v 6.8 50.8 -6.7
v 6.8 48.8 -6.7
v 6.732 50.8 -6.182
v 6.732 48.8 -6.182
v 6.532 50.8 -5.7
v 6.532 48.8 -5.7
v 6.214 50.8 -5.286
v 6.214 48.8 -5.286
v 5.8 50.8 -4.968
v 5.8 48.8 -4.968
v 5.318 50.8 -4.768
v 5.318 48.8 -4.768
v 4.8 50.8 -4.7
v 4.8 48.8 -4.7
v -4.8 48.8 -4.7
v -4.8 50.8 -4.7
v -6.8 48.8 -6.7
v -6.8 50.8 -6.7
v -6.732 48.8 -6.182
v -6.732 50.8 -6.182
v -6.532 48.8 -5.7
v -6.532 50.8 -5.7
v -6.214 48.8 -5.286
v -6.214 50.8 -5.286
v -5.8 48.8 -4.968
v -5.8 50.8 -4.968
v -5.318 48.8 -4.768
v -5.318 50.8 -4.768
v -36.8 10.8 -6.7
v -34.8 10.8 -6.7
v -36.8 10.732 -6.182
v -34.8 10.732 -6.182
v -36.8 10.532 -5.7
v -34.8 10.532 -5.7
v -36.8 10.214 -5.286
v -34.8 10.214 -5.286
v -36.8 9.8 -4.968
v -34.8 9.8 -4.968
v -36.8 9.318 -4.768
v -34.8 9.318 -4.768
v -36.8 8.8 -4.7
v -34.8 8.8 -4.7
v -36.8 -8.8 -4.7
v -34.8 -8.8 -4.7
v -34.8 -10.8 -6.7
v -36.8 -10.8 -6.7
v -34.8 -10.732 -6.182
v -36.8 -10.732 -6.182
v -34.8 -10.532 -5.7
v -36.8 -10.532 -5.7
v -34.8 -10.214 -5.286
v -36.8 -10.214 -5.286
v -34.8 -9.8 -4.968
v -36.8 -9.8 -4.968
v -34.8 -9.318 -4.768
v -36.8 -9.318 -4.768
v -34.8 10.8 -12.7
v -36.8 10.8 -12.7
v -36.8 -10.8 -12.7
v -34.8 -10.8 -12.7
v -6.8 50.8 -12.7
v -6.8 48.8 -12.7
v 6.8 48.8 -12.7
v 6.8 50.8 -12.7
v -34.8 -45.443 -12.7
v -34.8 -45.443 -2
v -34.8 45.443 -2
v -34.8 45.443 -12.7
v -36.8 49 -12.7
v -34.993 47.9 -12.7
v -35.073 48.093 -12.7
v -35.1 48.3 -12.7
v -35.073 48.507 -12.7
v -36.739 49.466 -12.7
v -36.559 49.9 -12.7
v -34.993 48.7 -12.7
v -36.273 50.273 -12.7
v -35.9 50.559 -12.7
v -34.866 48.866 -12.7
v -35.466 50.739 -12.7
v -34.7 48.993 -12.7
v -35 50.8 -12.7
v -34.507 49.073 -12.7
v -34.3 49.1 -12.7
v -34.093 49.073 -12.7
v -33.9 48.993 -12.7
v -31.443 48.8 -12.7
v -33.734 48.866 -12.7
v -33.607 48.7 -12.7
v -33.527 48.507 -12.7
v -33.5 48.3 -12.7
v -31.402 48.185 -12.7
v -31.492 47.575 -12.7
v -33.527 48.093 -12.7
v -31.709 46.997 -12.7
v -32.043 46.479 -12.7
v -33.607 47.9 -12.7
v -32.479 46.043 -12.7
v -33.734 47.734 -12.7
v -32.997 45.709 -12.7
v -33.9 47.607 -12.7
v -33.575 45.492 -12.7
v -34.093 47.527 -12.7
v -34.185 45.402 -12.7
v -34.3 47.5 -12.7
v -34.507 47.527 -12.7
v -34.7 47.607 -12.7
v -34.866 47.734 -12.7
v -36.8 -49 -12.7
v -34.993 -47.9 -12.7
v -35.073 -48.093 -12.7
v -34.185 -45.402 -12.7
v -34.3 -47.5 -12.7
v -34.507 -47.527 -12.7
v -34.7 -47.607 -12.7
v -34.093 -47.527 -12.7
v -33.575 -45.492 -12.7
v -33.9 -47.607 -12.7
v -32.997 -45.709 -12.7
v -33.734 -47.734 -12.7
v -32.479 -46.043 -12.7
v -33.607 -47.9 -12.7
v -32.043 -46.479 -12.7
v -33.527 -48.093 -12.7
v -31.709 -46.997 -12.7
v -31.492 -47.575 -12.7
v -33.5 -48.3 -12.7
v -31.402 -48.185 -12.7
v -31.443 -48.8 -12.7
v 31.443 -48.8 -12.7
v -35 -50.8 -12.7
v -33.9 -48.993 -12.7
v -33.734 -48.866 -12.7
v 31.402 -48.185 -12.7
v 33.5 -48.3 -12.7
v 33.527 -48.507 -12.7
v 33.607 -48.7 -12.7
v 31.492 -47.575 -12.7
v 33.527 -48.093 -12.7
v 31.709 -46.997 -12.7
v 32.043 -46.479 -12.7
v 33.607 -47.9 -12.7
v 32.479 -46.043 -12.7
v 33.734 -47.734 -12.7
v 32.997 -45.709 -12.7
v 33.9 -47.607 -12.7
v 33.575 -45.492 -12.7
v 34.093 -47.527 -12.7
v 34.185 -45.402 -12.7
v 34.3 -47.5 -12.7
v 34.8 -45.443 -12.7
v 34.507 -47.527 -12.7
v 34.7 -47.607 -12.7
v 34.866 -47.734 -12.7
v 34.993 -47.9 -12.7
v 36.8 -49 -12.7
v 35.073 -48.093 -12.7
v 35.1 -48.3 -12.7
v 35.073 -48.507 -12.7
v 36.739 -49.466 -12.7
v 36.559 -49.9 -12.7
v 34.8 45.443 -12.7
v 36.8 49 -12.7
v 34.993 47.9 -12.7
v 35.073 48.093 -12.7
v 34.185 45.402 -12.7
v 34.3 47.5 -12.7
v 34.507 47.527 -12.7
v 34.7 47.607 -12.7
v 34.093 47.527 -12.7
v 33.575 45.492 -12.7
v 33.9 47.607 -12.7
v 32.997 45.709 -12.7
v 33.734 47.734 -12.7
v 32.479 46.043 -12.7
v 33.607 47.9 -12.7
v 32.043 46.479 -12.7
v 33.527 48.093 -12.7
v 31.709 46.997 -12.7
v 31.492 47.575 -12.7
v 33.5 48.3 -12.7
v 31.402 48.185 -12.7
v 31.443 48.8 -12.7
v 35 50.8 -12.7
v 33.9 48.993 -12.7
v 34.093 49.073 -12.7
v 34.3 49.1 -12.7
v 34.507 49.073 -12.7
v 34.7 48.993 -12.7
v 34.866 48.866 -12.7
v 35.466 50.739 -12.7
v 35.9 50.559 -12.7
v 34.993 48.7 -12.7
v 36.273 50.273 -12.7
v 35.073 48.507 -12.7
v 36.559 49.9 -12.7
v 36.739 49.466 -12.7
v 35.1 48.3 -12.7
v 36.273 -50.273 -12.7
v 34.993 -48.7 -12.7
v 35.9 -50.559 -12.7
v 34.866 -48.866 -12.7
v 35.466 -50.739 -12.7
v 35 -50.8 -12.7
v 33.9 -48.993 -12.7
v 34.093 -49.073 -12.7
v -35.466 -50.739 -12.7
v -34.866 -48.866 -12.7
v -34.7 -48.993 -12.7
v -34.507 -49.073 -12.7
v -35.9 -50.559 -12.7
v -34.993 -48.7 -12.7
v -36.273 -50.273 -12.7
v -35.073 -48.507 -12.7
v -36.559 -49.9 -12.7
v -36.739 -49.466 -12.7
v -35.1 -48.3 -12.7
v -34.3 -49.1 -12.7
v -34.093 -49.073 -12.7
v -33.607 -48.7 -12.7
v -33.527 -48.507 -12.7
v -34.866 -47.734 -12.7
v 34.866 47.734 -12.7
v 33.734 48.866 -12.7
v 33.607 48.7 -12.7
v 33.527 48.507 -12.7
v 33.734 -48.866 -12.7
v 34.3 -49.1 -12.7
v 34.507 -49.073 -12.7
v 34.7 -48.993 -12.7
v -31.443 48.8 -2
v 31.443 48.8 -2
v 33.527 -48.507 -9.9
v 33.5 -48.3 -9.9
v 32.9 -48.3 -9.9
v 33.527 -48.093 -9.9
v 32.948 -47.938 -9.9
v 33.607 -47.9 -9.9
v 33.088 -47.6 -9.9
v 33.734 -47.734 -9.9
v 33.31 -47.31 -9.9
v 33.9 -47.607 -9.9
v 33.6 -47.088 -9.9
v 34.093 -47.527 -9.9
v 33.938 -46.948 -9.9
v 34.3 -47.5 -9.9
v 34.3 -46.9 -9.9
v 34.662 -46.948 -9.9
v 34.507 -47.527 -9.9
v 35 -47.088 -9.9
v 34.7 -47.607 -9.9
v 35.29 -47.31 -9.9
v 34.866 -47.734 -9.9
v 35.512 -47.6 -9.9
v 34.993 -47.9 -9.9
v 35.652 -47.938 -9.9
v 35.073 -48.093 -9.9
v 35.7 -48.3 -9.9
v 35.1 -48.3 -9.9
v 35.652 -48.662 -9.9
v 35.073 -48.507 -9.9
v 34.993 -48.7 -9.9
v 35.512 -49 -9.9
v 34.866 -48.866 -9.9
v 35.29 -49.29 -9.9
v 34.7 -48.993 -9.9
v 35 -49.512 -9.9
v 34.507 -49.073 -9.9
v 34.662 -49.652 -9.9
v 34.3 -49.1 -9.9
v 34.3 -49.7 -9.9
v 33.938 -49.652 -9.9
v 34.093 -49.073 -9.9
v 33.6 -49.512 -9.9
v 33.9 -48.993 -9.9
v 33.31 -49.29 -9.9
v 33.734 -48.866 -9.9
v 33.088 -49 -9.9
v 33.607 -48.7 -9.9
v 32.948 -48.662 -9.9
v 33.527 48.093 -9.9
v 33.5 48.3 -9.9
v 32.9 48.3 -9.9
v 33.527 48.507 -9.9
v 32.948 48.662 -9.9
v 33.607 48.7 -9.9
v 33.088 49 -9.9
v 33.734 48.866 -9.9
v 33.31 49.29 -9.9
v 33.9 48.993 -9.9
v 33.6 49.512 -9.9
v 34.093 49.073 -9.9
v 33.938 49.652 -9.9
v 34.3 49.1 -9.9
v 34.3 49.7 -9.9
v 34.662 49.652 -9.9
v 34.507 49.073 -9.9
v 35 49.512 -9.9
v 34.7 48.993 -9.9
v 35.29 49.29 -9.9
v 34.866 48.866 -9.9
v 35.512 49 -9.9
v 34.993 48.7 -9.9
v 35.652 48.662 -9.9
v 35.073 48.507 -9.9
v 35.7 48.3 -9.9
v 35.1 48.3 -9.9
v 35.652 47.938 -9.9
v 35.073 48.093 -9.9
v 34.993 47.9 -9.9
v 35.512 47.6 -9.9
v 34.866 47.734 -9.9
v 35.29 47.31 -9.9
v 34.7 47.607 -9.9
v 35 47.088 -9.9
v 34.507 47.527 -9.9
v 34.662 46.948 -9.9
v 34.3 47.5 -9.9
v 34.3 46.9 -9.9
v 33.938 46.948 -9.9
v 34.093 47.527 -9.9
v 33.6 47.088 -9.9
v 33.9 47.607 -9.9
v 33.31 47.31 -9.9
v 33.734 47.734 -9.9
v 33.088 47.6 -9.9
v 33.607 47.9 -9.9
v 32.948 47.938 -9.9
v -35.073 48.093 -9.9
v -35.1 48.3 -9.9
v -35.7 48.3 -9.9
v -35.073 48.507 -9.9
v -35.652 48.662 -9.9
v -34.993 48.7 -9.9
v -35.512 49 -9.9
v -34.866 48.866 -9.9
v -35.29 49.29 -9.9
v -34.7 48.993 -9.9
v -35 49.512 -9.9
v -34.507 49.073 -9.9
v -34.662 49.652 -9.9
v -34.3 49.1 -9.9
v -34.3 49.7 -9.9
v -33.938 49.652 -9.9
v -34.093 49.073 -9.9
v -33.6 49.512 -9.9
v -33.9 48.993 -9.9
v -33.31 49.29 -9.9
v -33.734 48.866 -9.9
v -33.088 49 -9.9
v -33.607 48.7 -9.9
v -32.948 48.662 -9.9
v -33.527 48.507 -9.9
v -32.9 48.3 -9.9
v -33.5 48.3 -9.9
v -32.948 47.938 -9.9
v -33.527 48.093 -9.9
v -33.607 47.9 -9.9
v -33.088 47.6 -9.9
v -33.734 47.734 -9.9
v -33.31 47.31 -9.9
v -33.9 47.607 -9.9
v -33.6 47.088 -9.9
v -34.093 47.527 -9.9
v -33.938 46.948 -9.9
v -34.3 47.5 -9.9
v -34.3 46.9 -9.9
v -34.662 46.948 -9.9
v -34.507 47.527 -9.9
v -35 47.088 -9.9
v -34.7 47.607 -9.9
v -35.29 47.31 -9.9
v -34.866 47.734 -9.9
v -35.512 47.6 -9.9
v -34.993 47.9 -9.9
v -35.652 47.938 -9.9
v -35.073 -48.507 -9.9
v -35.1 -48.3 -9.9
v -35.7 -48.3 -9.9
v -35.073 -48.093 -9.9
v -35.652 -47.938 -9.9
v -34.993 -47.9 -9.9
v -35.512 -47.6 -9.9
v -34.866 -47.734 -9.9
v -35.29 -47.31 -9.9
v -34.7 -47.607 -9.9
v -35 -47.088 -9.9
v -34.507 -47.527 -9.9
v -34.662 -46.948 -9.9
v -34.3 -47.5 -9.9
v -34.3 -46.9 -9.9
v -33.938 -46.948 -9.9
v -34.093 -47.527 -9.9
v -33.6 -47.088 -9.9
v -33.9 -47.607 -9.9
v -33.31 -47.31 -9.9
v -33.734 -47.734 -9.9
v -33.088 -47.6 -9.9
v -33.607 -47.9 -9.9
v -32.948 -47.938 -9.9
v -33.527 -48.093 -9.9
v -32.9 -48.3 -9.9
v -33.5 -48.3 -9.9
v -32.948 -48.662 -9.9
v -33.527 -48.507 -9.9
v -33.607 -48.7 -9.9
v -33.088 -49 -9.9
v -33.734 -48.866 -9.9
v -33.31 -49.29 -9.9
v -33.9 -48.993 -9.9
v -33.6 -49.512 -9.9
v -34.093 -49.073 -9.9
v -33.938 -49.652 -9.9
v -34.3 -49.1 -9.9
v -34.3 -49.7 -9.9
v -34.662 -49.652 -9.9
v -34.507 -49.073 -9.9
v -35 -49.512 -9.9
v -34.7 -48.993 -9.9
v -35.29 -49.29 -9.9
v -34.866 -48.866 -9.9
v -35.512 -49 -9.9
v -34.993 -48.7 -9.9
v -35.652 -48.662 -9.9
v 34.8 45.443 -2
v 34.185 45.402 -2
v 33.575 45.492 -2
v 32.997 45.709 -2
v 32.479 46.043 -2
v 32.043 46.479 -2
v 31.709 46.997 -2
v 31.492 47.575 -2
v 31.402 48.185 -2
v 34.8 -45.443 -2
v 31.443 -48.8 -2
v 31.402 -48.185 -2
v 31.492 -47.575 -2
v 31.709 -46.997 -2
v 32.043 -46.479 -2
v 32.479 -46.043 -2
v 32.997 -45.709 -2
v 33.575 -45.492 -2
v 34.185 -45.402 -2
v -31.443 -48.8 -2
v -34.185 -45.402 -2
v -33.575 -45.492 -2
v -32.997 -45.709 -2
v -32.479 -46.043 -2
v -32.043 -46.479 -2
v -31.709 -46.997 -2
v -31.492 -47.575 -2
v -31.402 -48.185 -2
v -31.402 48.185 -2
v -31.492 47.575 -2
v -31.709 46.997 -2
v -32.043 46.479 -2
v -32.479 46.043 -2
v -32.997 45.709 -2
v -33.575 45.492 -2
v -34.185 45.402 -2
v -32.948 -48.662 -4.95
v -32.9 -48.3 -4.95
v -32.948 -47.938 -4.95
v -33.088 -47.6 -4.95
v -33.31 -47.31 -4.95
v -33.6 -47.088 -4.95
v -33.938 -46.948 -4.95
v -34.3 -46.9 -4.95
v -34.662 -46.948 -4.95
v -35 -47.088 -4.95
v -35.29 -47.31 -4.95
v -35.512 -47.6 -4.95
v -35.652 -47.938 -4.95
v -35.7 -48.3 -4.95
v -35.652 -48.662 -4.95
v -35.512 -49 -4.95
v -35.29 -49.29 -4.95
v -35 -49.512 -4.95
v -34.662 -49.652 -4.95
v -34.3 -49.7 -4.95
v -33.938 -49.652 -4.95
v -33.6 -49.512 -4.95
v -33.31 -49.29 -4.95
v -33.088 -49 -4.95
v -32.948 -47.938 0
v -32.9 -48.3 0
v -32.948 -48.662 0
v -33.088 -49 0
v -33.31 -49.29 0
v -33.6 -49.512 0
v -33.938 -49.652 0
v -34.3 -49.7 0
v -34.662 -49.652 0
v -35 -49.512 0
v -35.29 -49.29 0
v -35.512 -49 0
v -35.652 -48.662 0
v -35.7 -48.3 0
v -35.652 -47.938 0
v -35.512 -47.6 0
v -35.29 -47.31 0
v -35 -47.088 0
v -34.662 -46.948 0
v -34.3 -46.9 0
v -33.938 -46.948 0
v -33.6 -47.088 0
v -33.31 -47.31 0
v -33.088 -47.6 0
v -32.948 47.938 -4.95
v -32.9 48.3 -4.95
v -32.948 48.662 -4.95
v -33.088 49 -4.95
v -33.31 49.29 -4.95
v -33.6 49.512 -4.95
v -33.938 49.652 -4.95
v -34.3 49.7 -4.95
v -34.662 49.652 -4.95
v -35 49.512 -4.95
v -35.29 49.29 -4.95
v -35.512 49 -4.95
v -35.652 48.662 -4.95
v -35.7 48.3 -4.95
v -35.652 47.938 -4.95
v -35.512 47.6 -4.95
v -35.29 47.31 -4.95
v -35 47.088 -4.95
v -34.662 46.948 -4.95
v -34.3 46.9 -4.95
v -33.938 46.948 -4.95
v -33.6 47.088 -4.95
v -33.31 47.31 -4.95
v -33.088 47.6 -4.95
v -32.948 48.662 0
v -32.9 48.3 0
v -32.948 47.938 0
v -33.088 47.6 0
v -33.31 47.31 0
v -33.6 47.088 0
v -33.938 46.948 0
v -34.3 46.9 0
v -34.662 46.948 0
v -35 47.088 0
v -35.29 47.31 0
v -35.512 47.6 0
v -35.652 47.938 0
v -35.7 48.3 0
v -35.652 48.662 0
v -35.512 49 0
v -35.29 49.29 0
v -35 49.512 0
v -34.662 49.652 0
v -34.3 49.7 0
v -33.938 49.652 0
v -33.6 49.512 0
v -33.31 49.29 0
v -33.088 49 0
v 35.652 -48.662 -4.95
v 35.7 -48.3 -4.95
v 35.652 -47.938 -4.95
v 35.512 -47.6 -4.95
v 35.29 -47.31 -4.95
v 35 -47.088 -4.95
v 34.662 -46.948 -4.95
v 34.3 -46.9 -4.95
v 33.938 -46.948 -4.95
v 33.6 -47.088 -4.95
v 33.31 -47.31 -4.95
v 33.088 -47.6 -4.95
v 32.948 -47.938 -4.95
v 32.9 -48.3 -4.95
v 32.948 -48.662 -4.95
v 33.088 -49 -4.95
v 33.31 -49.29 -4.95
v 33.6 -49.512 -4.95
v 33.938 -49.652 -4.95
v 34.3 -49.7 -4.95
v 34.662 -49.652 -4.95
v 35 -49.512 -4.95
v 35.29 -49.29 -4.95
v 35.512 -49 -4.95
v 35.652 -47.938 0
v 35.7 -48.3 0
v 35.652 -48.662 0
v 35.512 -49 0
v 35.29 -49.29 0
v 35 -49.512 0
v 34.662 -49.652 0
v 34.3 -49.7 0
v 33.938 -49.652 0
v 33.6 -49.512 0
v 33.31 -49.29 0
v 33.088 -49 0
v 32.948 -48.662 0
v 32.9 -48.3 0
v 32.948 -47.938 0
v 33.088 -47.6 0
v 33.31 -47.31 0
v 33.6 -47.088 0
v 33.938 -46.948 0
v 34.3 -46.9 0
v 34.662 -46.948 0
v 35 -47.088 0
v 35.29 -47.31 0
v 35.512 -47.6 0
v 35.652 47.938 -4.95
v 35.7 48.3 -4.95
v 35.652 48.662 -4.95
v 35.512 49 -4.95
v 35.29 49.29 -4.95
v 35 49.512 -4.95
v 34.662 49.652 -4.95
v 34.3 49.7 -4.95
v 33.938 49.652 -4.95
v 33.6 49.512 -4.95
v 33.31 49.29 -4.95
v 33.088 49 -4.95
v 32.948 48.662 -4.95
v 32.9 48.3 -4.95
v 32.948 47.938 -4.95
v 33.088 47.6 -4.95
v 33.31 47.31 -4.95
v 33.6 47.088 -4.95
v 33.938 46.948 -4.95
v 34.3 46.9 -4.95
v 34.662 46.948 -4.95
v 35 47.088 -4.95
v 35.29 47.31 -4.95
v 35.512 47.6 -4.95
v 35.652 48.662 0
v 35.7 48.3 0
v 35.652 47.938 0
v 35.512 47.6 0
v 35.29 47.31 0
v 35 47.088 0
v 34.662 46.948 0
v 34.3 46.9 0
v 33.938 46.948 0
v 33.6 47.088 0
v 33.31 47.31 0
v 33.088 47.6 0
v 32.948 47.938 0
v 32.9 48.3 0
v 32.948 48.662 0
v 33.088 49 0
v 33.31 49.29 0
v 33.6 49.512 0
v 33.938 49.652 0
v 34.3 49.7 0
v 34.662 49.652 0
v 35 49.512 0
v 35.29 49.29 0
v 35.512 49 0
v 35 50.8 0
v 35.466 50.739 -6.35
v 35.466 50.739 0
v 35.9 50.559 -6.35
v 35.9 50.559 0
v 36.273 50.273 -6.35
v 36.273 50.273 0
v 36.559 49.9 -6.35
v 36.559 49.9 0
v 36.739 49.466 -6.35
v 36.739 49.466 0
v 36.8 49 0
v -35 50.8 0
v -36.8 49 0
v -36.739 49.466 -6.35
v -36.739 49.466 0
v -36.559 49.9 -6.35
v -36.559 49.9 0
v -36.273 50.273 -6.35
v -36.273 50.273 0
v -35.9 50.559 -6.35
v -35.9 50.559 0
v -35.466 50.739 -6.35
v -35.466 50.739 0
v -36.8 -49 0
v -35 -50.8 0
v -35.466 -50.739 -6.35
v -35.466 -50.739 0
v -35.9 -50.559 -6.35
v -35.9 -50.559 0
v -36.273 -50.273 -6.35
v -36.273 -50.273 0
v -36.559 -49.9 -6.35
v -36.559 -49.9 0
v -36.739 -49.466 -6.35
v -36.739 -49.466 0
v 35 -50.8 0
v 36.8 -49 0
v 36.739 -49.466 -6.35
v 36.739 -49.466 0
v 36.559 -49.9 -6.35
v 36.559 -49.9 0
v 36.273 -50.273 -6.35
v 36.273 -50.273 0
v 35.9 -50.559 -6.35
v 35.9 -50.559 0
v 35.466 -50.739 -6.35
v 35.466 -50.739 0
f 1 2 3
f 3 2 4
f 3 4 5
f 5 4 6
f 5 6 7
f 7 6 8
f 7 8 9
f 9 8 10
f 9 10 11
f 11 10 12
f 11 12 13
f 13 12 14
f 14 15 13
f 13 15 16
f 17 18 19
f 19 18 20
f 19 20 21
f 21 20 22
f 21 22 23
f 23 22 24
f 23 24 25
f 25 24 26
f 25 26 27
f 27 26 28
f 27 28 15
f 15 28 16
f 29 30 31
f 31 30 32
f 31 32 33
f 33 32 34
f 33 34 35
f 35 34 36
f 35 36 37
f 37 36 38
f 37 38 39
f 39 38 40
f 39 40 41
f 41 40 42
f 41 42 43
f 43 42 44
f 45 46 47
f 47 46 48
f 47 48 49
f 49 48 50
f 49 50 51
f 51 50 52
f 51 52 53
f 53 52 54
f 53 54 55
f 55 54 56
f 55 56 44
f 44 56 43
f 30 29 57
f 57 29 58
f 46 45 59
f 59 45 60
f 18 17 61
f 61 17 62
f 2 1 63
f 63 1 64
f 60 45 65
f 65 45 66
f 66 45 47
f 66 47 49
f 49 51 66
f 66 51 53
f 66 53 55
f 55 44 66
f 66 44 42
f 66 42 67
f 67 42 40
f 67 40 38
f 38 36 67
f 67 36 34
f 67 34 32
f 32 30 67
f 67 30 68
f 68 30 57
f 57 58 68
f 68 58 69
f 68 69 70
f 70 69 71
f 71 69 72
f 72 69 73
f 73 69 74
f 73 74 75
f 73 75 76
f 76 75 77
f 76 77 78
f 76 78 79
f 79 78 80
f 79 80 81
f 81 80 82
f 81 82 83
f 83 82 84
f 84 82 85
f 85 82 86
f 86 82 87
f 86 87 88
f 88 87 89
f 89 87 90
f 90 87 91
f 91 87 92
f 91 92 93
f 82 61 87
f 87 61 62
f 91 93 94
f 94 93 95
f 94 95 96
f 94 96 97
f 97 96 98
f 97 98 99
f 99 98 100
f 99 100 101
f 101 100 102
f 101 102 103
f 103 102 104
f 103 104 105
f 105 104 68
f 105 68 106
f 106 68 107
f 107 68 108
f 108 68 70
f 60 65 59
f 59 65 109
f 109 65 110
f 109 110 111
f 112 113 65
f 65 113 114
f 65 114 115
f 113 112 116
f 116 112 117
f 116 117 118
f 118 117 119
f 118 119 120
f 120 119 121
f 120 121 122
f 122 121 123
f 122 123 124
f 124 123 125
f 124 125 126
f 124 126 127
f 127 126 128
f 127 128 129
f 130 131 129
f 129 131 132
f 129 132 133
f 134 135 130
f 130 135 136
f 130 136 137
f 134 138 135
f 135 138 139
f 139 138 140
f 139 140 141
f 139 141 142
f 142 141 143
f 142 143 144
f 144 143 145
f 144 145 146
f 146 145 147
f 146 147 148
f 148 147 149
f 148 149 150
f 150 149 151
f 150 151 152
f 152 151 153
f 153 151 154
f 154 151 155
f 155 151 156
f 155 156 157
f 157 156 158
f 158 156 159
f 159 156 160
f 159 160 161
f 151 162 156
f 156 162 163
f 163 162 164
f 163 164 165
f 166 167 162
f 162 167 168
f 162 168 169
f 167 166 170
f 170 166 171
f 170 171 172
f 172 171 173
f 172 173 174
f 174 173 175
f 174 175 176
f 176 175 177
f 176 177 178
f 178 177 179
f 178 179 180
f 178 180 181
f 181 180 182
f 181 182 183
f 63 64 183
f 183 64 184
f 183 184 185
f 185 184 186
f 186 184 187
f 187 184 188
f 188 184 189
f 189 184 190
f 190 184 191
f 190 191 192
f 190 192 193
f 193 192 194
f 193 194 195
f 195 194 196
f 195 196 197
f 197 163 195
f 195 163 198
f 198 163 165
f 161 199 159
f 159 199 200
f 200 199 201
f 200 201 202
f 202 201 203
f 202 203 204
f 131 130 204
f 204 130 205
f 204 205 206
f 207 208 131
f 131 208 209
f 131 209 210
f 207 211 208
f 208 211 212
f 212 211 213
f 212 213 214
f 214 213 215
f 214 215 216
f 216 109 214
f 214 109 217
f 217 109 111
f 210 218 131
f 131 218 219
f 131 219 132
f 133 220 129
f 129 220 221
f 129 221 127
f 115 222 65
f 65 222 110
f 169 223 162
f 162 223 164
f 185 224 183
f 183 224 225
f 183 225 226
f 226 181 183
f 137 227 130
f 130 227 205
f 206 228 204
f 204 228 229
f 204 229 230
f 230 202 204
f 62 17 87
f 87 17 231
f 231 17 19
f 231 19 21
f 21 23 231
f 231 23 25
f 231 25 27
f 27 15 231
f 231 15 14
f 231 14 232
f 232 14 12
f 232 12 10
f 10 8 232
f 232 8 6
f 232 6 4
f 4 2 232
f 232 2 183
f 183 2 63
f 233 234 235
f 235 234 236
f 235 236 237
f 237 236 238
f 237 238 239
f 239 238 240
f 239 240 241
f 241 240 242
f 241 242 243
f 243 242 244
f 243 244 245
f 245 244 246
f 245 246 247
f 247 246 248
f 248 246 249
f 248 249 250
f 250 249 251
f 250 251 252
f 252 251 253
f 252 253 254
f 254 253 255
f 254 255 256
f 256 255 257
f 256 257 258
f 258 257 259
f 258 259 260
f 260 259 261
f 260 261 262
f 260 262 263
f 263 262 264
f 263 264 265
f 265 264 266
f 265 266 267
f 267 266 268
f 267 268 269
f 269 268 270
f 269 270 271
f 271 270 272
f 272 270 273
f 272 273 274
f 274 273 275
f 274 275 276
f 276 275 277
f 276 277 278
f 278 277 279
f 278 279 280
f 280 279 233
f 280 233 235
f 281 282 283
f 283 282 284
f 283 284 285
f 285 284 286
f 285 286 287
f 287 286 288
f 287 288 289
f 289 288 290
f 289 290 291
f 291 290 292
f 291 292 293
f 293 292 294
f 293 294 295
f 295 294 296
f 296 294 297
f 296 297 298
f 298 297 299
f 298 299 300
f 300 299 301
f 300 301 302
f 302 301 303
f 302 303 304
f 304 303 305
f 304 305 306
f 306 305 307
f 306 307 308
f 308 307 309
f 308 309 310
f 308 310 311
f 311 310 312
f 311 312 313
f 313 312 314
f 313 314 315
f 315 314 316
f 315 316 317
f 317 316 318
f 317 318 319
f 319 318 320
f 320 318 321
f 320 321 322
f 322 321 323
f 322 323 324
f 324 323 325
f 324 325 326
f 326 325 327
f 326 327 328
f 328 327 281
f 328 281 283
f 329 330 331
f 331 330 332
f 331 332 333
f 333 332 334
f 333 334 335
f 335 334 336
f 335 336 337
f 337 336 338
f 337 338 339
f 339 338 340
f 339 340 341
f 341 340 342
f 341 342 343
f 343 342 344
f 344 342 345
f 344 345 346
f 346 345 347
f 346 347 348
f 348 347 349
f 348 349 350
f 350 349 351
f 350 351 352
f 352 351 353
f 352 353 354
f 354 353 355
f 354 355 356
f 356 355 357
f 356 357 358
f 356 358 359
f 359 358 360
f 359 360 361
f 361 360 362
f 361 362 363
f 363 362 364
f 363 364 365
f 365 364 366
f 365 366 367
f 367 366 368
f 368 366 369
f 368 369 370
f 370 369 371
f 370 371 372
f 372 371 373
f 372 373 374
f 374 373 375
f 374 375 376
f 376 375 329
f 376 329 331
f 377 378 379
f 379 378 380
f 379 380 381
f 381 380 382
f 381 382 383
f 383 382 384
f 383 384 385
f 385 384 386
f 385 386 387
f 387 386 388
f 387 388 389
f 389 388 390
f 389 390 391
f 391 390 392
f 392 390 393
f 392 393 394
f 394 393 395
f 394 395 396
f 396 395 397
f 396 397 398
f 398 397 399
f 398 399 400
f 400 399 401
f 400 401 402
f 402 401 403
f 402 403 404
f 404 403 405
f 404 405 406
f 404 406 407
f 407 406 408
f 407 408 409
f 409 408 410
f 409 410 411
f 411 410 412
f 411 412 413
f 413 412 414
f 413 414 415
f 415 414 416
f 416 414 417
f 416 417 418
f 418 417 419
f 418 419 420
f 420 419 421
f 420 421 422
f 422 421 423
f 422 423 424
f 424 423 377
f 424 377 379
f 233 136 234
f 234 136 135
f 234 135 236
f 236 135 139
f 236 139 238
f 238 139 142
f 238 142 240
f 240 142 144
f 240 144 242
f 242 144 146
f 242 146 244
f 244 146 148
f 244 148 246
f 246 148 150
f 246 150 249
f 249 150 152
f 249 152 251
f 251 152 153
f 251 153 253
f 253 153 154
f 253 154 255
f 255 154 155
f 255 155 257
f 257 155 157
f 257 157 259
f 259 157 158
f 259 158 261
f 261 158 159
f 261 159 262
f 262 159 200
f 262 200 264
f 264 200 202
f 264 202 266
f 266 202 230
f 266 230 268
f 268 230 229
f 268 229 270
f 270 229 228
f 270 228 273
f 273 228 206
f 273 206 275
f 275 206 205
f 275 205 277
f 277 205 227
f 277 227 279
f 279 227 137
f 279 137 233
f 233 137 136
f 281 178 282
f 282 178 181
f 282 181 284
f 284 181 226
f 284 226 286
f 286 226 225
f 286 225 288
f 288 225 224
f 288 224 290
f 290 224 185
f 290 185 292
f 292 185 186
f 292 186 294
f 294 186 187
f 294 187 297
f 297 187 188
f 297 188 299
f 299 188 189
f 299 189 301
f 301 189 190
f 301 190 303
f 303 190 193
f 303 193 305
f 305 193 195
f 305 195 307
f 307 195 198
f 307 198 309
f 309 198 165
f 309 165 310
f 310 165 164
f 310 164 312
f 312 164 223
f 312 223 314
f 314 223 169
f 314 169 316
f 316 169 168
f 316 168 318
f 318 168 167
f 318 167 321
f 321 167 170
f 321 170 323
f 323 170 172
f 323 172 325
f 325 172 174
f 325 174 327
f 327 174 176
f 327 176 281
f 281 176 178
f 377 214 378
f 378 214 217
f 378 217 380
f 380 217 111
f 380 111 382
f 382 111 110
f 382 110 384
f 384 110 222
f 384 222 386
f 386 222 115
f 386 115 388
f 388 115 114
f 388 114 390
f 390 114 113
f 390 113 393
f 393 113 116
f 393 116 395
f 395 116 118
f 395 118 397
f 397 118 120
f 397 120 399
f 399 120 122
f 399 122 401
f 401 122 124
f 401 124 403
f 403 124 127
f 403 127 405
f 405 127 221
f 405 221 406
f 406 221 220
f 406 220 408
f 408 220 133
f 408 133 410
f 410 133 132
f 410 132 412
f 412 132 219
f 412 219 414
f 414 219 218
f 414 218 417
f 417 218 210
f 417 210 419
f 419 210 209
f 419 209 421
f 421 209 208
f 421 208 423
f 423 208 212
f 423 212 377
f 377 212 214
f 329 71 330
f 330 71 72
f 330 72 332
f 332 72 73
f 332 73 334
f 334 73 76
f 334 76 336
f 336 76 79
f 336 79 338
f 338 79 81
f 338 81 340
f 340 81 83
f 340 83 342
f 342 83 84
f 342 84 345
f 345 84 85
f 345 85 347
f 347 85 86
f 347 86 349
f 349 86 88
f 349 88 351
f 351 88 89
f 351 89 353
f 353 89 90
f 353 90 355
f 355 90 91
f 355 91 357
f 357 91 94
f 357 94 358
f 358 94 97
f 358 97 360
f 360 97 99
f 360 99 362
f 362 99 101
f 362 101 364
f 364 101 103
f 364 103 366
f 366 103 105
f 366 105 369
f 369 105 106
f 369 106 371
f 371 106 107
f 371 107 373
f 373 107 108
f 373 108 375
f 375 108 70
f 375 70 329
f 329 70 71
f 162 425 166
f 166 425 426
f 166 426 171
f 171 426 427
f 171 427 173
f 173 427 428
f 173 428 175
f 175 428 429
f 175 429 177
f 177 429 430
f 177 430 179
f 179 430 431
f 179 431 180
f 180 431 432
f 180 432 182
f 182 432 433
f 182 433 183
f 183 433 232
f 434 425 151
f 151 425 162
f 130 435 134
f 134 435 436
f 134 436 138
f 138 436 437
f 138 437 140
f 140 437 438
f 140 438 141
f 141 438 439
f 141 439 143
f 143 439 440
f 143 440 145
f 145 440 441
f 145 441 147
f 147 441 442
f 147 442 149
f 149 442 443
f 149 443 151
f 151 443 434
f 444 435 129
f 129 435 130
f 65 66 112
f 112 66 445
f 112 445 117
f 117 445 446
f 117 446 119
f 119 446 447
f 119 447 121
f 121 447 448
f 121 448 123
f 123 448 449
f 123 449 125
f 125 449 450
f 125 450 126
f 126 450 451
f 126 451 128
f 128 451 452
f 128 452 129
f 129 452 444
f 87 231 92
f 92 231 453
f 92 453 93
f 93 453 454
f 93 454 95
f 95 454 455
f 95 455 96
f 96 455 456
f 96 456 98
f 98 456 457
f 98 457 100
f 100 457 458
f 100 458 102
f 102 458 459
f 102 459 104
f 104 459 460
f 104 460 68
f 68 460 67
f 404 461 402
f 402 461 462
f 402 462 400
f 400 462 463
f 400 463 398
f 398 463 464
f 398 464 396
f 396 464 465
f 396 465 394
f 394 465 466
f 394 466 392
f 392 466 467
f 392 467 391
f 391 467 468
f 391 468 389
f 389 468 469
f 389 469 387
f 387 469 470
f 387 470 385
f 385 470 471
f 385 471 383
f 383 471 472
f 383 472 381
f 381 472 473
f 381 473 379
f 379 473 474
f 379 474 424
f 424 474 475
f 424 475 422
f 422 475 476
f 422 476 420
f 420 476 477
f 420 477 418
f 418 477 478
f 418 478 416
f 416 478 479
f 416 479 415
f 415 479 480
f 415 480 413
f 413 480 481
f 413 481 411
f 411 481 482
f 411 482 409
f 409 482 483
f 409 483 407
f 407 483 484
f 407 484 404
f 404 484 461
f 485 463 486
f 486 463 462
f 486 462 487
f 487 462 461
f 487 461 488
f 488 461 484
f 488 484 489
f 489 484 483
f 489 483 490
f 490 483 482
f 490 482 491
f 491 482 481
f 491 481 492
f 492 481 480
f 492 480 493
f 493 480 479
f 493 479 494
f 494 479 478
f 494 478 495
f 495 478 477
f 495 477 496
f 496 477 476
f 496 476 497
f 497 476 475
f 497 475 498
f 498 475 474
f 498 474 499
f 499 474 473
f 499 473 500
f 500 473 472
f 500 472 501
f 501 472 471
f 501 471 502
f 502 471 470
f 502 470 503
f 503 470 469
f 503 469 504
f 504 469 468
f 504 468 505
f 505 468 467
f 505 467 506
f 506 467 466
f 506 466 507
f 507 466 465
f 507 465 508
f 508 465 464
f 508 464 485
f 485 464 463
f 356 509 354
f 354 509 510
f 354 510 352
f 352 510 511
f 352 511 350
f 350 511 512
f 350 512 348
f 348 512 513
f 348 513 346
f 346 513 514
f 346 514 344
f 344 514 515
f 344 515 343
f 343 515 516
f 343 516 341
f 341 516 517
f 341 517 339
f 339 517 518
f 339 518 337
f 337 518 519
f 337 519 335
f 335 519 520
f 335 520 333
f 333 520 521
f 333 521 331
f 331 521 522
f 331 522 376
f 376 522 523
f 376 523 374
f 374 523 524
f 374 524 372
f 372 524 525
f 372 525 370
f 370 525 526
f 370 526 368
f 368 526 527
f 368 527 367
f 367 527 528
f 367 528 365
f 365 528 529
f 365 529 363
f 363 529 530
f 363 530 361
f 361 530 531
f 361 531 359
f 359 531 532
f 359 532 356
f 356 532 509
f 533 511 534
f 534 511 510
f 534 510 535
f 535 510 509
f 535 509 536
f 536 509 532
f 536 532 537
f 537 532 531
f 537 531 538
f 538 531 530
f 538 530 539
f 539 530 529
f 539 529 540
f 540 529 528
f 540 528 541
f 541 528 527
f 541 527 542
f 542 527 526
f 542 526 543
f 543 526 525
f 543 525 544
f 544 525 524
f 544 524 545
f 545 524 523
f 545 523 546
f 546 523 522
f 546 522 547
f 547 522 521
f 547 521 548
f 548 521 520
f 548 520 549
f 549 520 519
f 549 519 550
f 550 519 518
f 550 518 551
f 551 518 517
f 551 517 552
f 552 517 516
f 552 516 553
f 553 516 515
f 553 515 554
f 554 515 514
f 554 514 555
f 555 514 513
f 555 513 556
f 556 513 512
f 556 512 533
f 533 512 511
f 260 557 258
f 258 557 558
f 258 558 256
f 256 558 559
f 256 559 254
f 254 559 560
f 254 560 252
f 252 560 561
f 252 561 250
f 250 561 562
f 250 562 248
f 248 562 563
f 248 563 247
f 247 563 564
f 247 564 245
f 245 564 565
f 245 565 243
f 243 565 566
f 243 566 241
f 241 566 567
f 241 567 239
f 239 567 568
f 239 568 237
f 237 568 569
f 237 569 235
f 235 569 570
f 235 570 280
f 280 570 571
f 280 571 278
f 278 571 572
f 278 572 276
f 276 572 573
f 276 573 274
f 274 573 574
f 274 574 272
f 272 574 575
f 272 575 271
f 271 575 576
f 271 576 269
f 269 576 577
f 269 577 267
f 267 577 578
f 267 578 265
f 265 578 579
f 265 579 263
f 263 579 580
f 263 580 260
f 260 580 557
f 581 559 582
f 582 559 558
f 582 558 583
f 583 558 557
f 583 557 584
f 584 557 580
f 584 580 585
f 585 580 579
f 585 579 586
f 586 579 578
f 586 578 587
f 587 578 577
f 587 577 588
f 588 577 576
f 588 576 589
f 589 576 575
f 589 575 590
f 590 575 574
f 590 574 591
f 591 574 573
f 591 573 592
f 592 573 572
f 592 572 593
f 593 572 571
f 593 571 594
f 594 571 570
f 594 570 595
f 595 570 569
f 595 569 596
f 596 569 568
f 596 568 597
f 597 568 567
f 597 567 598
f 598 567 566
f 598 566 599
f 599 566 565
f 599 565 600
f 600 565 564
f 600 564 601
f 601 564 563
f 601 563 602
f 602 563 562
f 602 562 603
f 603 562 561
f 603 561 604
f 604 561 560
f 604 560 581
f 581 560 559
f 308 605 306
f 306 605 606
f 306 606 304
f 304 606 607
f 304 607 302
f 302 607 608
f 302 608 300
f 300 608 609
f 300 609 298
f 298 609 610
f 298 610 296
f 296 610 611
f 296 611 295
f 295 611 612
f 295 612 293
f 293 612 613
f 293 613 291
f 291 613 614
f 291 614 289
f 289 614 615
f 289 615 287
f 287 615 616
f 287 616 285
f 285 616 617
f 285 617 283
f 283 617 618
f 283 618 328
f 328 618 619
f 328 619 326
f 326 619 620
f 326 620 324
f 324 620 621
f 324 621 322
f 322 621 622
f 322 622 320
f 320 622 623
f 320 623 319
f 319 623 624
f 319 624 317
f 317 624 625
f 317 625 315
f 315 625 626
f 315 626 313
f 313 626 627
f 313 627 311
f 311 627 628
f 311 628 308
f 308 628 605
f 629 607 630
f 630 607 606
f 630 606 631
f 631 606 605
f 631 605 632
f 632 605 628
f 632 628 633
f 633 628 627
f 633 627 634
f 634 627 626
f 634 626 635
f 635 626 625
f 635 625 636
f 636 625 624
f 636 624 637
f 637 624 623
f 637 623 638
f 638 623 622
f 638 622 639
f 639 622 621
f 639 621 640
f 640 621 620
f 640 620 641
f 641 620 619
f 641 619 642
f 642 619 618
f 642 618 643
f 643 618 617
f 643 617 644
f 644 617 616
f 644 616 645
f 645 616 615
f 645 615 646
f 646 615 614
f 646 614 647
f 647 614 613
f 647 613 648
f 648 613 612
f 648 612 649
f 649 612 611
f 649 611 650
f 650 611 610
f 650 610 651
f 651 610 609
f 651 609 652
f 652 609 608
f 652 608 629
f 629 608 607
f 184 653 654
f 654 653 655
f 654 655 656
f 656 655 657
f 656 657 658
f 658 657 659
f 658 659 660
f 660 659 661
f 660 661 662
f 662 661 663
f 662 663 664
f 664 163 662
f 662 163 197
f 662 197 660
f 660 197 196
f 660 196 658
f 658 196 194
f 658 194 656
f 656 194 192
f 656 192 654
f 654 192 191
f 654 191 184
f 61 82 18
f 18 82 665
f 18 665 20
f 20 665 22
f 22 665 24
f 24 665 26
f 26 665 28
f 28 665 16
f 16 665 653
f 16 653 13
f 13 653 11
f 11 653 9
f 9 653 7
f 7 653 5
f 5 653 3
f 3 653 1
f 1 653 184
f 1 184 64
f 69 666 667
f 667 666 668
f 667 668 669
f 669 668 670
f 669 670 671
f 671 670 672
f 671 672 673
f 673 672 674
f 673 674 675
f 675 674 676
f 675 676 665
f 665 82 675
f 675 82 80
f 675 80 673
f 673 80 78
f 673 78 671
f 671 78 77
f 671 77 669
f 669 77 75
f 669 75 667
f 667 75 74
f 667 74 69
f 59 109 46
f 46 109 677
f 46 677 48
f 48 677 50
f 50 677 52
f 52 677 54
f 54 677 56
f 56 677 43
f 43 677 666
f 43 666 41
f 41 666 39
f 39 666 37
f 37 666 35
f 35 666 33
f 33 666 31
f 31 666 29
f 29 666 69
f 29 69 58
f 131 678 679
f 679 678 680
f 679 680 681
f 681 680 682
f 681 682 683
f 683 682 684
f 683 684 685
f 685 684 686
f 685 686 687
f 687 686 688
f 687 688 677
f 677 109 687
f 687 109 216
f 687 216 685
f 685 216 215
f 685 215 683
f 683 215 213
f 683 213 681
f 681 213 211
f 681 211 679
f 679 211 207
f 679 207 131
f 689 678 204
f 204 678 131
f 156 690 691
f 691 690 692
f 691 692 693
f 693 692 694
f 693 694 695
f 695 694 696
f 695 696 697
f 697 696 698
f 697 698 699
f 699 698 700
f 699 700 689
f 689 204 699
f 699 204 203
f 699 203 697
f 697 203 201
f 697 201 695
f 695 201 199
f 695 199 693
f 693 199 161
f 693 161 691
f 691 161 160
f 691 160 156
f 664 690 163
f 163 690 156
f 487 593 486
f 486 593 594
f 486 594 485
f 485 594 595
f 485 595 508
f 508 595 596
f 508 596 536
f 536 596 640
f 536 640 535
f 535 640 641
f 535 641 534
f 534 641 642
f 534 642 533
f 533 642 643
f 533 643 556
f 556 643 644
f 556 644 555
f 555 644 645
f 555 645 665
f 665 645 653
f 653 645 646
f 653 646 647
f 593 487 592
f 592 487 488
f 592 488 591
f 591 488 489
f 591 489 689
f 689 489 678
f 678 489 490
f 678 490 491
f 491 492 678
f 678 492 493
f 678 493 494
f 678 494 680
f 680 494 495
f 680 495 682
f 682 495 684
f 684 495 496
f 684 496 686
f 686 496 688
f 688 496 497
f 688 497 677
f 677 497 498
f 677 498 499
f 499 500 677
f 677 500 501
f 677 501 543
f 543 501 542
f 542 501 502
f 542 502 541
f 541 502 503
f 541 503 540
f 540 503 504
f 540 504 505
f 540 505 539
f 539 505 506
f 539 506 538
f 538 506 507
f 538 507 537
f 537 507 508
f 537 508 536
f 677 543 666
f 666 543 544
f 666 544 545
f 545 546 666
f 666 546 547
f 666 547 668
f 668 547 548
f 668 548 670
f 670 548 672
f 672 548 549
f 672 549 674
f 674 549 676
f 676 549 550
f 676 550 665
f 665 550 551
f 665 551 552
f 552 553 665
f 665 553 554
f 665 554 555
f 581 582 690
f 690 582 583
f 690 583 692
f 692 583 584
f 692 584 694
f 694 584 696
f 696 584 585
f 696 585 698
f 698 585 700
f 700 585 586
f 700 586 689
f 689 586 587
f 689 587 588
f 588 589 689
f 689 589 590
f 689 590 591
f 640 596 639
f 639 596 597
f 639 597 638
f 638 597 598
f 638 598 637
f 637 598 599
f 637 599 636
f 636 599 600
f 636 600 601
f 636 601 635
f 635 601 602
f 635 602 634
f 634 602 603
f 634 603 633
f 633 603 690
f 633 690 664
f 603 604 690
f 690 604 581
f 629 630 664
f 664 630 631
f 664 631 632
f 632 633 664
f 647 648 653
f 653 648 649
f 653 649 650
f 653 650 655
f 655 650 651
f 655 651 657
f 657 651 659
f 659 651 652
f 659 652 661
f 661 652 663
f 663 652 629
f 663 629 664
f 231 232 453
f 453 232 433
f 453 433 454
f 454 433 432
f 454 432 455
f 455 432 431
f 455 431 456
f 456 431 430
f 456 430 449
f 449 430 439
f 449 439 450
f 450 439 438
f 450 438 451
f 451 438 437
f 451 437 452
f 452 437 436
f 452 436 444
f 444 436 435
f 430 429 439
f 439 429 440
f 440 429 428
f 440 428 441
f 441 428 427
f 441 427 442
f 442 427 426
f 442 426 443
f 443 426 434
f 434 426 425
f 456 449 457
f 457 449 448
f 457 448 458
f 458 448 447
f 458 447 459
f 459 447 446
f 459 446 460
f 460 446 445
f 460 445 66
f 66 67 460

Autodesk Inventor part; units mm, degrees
ref_plane "YZ Plane" through (0, 0, 0) normal (1, 0, 0) x (0, 1, 0)
ref_plane "XZ Plane" through (0, 0, 0) normal (0, 1, 0) x (-1, 0, 0)
ref_plane "XY Plane" through (0, 0, 0) normal (0, 0, 1) x (1, 0, 0)
ref_plane "Work Plane4" through (0, 0, 0) normal (0, 0, 1) x (1, 0, 0)
sketch "Sketch1" plane through (0, 0, 0) normal (0, 0, 1) x (1, 0, 0)
  line L0 (37, 49) -> (37, -49) projected
  arc A0 (37, 49) -> (35, 51) centre (35, 49) ccw projected
  line L1 (-35, 51) -> (35, 51) projected
  line L2 (-37, -49) -> (-37, 49) projected
  arc A1 (-35, 51) -> (-37, 49) centre (-35, 49) ccw projected
  arc A2 (-37, -49) -> (-35, -51) centre (-35, -49) ccw projected
  line L3 (35, -51) -> (-35, -51) projected
  arc A3 (35, -51) -> (37, -49) centre (35, -49) ccw projected
  arc A4 (36.8, 49) -> (35, 50.8) centre (35, 49) ccw
  line L4 (36.8, 49) -> (36.8, -49)
  arc A5 (35, -50.8) -> (36.8, -49) centre (35, -49) ccw
  line L5 (35, -50.8) -> (-35, -50.8)
  arc A6 (-36.8, -49) -> (-35, -50.8) centre (-35, -49) ccw
  line L6 (-36.8, -49) -> (-36.8, 49)
  arc A7 (-35, 50.8) -> (-36.8, 49) centre (-35, 49) ccw
  line L7 (-35, 50.8) -> (35, 50.8)
  point P0 (0, 0)
  point P1 (34.3, 48.3)
  point P2 (-33, 42)
  dimension "d0" = 0.2
extrude "Extrusion1" add sketch "Sketch1" against normal blind 2 contours L4 A5 L5 A6 L6 A7 L7 A4
sketch "Sketch4" plane through (0, 0, 0) normal (0, 0, 1) x (1, 0, 0)
  line L0 (36.8, -49) -> (36.8, 49) projected
  arc A0 (36.8, 49) -> (35, 50.8) centre (35, 49) ccw projected
  line L1 (35, 50.8) -> (-35, 50.8) projected
  arc A1 (-35, 50.8) -> (-36.8, 49) centre (-35, 49) ccw projected
  line L2 (-36.8, 49) -> (-36.8, -49) projected
  arc A2 (-36.8, -49) -> (-35, -50.8) centre (-35, -49) ccw projected
  line L3 (-35, -50.8) -> (35, -50.8) projected
  arc A3 (35, -50.8) -> (36.8, -49) centre (35, -49) ccw projected
  circle A4 centre (34.3, 48.3) radius 1.4
  circle A5 centre (34.3, -48.3) radius 1.4
  circle A6 centre (-34.3, -48.3) radius 1.4
  circle A7 centre (-34.3, 48.3) radius 1.4
  point P0 (0, 0)
  dimension "d22" = 2.8
  dimension "d23" = 2.8
  dimension "d24" = 2.8
  dimension "d25" = 2.8
  dimension "d59" = 2.5
  dimension "d60" = 2.5
  dimension "d62" = 2.5
  dimension "d63" = 2.5
  dimension "d64" = 2.5
  dimension "d65" = 2.5
  dimension "d66" = 2.5
  dimension "d67" = 2.5
extrude "Extrusion3" cut sketch "Sketch4" against normal blind 10 contours A4 | A5 | A6 | A7
ref_plane "Work Plane5" through (0, 0, -2) normal (0, 0, -1) x (-1, 0, 0)
sketch "Sketch5" plane through (0, 0, -2) normal (0, 0, -1) x (-1, 0, 0)
  line L0 (-34.8, 48.8) -> (34.8, 48.8)
  line L1 (34.8, 48.8) -> (34.8, -48.8)
  line L2 (34.8, -48.8) -> (-34.8, -48.8)
  line L3 (-34.8, -48.8) -> (-34.8, 48.8)
  circle A0 centre (34.3, 48.3) radius 1.4 projected
  circle A1 centre (34.3, -48.3) radius 1.4 projected
  circle A2 centre (-34.3, -48.3) radius 1.4 projected
  circle A3 centre (-34.3, 48.3) radius 1.4 projected
  circle A4 centre (-34.3, 48.3) radius 2.9
  circle A5 centre (-34.3, -48.3) radius 2.9
  circle A6 centre (34.3, -48.3) radius 2.9
  circle A7 centre (34.3, 48.3) radius 2.9
  circle A8 centre (34.3, -48.3) radius 1.4 projected
  circle A9 centre (34.3, 48.3) radius 1.4 projected
  circle A10 centre (-34.3, -48.3) radius 1.4 projected
  circle A11 centre (-34.3, 48.3) radius 1.4 projected
  line L4 (-36.8, 49) -> (-36.8, -49) projected
  arc A12 (-36.8, -49) -> (-35, -50.8) centre (-35, -49) ccw projected
  line L5 (-35, -50.8) -> (35, -50.8) projected
  arc A13 (35, -50.8) -> (36.8, -49) centre (35, -49) ccw projected
  line L6 (36.8, -49) -> (36.8, 49) projected
  arc A14 (36.8, 49) -> (35, 50.8) centre (35, 49) ccw projected
  line L7 (35, 50.8) -> (-35, 50.8) projected
  arc A15 (-35, 50.8) -> (-36.8, 49) centre (-35, 49) ccw projected
  point P0 (0, 0)
  point P1 (-31.4434, 48.8)
  point P2 (31.4434, 48.8)
  point P3 (34.8, 45.4434)
  point P4 (34.8, -45.4434)
  point P5 (31.4434, -48.8)
  point P6 (-31.4434, -48.8)
  point P7 (-34.8, -45.4434)
  point P8 (-34.8, 45.4434)
  dimension "d68" = 1.5
  dimension "d69" = 1.5
  dimension "d70" = 1.5
  dimension "d71" = 1.5
extrude "Extrusion4" add sketch "Sketch5" along normal blind 10.7 contours L3 A3 L0 | L0 A3 L3 | A3 L3 A4 L4 A15 L7 L0 | L0 A4 L3 A3 | A4 L7 A7 L0 | L3 A5 L4 A4 | A7 L7 A14 L6 L1 A0 L0 | L0 A0 L1 A7 | A5 L2 A2 L3 | L3 A2 L2 A5 L5 A12 L4 | A0 L1 L0 | L0 L1 A0 | A7 L6 A6 L1 | A2 L2 L3 | L3 L2 A2 | A6 L6 A13 L5 L2 A1 L1 | L1 A1 L2 A6 | L2 A6 L5 A5 | A1 L2 L1 | L1 L2 A1
sketch "Sketch6" plane through (-34.3, 48.3, -2) normal (0, 0, 1) x (1, 0, 0)
  circle A0 centre (68.6, 0) radius 1.4 projected
  circle A1 centre (0, 0) radius 1.4 projected
  circle A2 centre (0, -96.6) radius 1.4 projected
  circle A3 centre (68.6, -96.6) radius 1.4 projected
  circle A4 centre (68.6, 0) radius 0.8
  circle A5 centre (0, 0) radius 0.8
  circle A6 centre (0, -96.6) radius 0.8
  circle A7 centre (68.6, -96.6) radius 0.8
  point P0 (34.3, -48.3)
  dimension "d47" = 1.6
  dimension "d48" = 1.6
  dimension "d49" = 1.6
  dimension "d50" = 1.6
extrude "Extrusion5" cut sketch "Sketch6" against normal through all contours A4 | A5 | A6 | A7
sketch "Sketch7" plane through (-34.3, 48.3, -2) normal (0, 0, 1) x (1, 0, 0)
  circle A0 centre (0, 0) radius 1.4 projected
  circle A1 centre (0, -96.6) radius 1.4 projected
  circle A2 centre (68.6, -96.6) radius 1.4 projected
  circle A3 centre (68.6, 0) radius 1.4 projected
  point P0 (34.3, -48.3)
extrude "Extrusion6" cut sketch "Sketch7" against normal blind 7.9
sketch "Sketch8" plane through (0, 0, -12.7) normal (0, 0, -1) x (-1, 0, 0)
  circle A0 centre (-34.3, -48.3) radius 0.8 projected
  circle A1 centre (-34.3, 48.3) radius 0.8 projected
  circle A2 centre (34.3, -48.3) radius 0.8 projected
  circle A3 centre (34.3, 48.3) radius 0.8 projected
  arc A4 (-36.8, -49) -> (-35, -50.8) centre (-35, -49) ccw projected
  line L0 (-35, -50.8) -> (35, -50.8) projected
  arc A5 (35, -50.8) -> (36.8, -49) centre (35, -49) ccw projected
  line L1 (36.8, -49) -> (36.8, 49) projected
  arc A6 (36.8, 49) -> (35, 50.8) centre (35, 49) ccw projected
  line L2 (35, 50.8) -> (-35, 50.8) projected
  arc A7 (-35, 50.8) -> (-36.8, 49) centre (-35, 49) ccw projected
  line L3 (-36.8, 49) -> (-36.8, -49) projected
  line L4 (-31.4434, 48.8) -> (31.4434, 48.8) projected
  arc A8 (31.4434, 48.8) -> (34.8, 45.4434) centre (34.3, 48.3) ccw projected
  line L5 (34.8, 45.4434) -> (34.8, -45.4434) projected
  arc A9 (34.8, -45.4434) -> (31.4434, -48.8) centre (34.3, -48.3) ccw projected
  line L6 (31.4434, -48.8) -> (-31.4434, -48.8) projected
  arc A10 (-31.4434, -48.8) -> (-34.8, -45.4434) centre (-34.3, -48.3) ccw projected
  line L7 (-34.8, -45.4434) -> (-34.8, 45.4434) projected
  arc A11 (-34.8, 45.4434) -> (-31.4434, 48.8) centre (-34.3, 48.3) ccw projected
  line L8 (34.8, 45.4434) -> (34.8, -45.4434) projected
  line L9 (36.8, 10.8) -> (34.8, 10.8)
  line L10 (34.8, 10.8) -> (34.8, -10.8)
  line L11 (34.8, -10.8) -> (36.8, -10.8)
  line L12 (36.8, -10.8) -> (36.8, 10.8)
  line L13 (35, 50.8) -> (-35, 50.8) projected
  line L14 (-31.4434, 48.8) -> (31.4434, 48.8) projected
  line L15 (-6.8, 50.8) -> (6.8, 50.8)
  line L16 (6.8, 50.8) -> (6.8, 48.8)
  line L17 (6.8, 48.8) -> (-6.8, 48.8)
  line L18 (-6.8, 48.8) -> (-6.8, 50.8)
  point P0 (0, 0)
  dimension "d74" = 40
  dimension "d75" = 40
  dimension "d76" = 30
  dimension "d77" = 30
extrude "Extrusion7" cut sketch "Sketch8" against normal blind 8 contours L2 L16 L4 L18 | L11 L5 L9 L1
fillet "Fillet3" radius 2 4 edges at (-35.8, -10.8, -4.7) (-35.8, 10.8, -4.7) (-6.8, 49.8, -4.7) (6.8, 49.8, -4.7)
properties part number "Bottom_lid_3DPrint"
